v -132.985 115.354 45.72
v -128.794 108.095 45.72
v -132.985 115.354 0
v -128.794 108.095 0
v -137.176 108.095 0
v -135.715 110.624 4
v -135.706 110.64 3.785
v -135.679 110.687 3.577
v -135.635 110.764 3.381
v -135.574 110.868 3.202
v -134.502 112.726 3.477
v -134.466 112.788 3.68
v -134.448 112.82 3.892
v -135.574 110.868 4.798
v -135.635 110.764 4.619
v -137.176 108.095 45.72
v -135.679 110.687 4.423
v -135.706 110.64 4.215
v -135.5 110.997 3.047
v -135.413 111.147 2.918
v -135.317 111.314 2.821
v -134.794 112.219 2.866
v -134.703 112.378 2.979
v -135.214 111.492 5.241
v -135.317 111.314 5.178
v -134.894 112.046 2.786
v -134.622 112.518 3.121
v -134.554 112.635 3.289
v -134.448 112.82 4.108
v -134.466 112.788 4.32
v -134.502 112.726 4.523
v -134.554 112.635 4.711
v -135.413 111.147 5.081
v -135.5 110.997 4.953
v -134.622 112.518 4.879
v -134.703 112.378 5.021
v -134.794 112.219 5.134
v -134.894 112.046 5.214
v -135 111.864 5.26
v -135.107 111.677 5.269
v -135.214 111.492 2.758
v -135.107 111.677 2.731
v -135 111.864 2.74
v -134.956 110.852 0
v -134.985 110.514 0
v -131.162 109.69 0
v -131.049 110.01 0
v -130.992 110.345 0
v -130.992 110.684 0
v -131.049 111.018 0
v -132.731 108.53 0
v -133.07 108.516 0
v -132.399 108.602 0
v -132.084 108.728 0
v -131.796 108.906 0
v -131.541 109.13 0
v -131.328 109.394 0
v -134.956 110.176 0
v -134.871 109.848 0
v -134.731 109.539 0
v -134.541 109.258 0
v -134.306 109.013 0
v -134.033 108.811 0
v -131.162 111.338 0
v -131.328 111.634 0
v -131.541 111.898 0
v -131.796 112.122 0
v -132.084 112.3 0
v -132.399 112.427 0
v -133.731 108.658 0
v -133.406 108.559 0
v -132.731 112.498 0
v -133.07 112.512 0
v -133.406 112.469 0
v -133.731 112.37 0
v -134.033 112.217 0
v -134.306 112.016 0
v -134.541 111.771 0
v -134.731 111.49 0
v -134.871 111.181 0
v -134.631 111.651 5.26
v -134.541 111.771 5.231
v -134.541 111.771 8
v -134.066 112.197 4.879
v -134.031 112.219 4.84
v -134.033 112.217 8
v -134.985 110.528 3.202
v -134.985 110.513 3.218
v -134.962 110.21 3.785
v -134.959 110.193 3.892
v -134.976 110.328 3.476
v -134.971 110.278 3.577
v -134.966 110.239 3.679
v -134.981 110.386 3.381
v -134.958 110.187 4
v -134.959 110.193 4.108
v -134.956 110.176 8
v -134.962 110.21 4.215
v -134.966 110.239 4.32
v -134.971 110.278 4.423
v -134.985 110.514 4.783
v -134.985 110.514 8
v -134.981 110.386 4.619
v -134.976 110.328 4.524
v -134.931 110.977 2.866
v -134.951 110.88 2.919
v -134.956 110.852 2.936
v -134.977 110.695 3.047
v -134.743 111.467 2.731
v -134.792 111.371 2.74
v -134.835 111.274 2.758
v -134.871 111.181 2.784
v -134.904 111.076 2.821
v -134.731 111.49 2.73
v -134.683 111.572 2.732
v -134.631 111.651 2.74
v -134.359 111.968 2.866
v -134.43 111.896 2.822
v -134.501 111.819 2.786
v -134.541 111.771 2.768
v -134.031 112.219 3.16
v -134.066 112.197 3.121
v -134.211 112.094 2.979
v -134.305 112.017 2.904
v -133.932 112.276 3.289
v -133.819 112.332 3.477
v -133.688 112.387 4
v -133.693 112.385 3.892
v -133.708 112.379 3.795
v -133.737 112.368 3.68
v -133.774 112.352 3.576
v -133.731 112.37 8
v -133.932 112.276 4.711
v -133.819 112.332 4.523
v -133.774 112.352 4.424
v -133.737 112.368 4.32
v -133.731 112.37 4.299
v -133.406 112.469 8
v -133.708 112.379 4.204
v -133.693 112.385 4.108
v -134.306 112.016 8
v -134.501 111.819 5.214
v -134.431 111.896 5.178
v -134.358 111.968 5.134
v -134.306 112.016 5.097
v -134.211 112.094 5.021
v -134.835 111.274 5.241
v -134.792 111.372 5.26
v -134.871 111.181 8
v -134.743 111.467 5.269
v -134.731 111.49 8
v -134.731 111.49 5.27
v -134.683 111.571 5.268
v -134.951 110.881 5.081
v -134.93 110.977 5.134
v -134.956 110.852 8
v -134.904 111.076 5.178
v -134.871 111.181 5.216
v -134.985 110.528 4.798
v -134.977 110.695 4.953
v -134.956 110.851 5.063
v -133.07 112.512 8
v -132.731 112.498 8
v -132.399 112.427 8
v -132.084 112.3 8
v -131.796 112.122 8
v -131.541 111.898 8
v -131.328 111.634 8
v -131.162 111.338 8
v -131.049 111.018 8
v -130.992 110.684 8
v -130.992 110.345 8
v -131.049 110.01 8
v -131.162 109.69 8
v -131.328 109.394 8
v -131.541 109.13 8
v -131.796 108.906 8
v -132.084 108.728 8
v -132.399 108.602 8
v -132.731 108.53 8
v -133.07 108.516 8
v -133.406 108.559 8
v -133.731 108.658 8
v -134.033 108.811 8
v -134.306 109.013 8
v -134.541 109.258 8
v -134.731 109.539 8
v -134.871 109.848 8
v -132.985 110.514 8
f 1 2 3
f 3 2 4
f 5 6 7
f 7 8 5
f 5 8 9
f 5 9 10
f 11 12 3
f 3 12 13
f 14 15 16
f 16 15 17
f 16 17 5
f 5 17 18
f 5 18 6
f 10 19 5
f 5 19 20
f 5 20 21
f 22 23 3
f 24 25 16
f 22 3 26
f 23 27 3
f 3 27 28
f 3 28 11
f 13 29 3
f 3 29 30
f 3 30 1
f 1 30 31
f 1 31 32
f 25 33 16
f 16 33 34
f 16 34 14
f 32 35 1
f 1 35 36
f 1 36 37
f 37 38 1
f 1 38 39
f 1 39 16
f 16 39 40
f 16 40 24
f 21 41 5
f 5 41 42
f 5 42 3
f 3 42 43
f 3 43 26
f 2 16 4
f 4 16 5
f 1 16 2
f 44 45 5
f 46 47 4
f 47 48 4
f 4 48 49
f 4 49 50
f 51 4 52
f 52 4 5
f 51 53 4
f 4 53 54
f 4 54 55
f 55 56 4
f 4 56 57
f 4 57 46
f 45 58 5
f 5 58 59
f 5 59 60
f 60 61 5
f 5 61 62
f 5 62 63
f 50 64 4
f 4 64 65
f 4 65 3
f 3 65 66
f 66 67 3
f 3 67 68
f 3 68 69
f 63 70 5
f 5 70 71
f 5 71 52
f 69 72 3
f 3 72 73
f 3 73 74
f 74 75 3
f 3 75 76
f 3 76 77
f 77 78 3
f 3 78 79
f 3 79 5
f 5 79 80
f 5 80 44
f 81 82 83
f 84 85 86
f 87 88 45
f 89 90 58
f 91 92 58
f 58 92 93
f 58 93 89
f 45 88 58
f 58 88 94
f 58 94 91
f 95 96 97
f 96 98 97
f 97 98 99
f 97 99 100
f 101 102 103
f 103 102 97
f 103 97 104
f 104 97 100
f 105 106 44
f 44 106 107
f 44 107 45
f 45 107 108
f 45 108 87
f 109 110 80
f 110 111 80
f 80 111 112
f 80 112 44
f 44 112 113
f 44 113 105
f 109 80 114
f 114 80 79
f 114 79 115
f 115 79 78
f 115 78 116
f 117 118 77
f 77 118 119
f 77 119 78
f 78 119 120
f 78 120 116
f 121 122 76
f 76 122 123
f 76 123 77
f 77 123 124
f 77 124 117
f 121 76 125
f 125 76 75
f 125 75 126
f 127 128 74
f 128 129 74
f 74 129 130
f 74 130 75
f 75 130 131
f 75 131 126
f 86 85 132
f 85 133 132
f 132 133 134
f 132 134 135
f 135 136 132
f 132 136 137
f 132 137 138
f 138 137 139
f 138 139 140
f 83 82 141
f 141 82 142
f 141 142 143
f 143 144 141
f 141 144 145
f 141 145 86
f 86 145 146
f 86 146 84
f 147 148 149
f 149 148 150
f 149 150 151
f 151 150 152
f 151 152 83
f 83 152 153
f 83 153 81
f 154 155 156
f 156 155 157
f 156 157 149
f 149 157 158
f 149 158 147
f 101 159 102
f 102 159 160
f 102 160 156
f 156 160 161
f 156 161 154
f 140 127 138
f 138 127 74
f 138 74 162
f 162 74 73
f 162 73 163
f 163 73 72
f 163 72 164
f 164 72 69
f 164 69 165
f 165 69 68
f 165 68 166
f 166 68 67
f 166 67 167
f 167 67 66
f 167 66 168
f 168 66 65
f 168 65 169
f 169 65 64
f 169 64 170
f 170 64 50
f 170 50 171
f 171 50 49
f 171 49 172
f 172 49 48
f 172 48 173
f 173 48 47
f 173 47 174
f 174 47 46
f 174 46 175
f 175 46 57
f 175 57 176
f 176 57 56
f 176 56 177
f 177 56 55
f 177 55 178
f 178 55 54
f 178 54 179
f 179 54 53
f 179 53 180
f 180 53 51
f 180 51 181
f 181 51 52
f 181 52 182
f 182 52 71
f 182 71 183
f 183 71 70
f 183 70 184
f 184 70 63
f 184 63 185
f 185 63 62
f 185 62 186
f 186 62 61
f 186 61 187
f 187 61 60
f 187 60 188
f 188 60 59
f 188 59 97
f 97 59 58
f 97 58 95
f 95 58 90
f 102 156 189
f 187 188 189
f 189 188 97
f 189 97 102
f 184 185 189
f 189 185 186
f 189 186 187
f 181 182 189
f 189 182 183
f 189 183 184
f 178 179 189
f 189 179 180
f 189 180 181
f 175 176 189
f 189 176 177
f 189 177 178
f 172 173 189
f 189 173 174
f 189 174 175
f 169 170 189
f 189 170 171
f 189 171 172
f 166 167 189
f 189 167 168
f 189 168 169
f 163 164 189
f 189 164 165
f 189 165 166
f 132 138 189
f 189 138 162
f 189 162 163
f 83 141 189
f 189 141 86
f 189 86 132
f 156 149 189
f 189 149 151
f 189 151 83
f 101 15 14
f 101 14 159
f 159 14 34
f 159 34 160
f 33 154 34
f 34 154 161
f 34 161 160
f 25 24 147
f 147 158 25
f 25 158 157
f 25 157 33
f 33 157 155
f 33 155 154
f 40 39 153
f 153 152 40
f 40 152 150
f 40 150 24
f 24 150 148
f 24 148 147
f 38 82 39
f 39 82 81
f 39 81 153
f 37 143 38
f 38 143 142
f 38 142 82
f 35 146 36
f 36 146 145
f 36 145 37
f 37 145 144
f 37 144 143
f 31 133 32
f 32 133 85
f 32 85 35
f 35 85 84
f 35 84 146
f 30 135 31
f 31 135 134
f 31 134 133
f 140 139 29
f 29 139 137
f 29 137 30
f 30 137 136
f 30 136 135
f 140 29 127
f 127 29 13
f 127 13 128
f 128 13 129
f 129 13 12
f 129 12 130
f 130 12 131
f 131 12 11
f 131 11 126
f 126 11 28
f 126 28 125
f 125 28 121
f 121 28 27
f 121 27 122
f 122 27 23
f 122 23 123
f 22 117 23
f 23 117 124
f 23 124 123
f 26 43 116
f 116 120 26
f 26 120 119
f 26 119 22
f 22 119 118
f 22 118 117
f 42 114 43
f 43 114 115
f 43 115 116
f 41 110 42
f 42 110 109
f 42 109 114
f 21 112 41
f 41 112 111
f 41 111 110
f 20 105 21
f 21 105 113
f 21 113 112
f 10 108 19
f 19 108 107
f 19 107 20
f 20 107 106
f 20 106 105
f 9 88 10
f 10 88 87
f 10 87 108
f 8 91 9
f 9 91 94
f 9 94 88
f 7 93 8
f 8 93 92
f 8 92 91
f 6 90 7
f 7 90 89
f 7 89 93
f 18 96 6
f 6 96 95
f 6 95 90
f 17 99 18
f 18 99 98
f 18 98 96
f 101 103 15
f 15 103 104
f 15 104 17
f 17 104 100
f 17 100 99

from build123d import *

# Parameters (mm, degrees)
BOSS_EXTRUDE1_DEPTH = 45.72
SKETCH3_R           = 2
CUT_EXTRUDE1_DEPTH  = 8
SKETCH4_R           = 1.27
CUT_EXTRUDE2_DEPTH  = 2.54


with BuildPart() as part:
    # Sketch1 → Boss-Extrude1 (new body)
    with BuildSketch(Plane.XY):
        Polygon((-132.98483419, 115.353503619), (-137.17583419, 108.094478684), (-128.79383419, 108.094478684), align=None)
    extrude(amount=BOSS_EXTRUDE1_DEPTH)

    # Sketch3 → Cut-Extrude1 (cut)
    with BuildSketch(Plane(origin=(0, 0, 0), x_dir=(-1, 0, 0), z_dir=(0, 0, -1))):
        with Locations((132.98483419, 110.514153662)):
            Circle(SKETCH3_R)
    extrude(amount=-CUT_EXTRUDE1_DEPTH, mode=Mode.SUBTRACT)

    # Sketch4 → Cut-Extrude2 (cut)
    with BuildSketch(Plane(origin=(-149.688157917, 86.422498268, 0), x_dir=(0, 0, 1), z_dir=(-0.8660254037844388, 0.4999999999999997, 0))):
        with Locations(Location((4, 29.215647454, 0), (0, 0, 270))):
            Circle(SKETCH4_R)
    extrude(amount=-CUT_EXTRUDE2_DEPTH, mode=Mode.SUBTRACT)


solid = part.part
